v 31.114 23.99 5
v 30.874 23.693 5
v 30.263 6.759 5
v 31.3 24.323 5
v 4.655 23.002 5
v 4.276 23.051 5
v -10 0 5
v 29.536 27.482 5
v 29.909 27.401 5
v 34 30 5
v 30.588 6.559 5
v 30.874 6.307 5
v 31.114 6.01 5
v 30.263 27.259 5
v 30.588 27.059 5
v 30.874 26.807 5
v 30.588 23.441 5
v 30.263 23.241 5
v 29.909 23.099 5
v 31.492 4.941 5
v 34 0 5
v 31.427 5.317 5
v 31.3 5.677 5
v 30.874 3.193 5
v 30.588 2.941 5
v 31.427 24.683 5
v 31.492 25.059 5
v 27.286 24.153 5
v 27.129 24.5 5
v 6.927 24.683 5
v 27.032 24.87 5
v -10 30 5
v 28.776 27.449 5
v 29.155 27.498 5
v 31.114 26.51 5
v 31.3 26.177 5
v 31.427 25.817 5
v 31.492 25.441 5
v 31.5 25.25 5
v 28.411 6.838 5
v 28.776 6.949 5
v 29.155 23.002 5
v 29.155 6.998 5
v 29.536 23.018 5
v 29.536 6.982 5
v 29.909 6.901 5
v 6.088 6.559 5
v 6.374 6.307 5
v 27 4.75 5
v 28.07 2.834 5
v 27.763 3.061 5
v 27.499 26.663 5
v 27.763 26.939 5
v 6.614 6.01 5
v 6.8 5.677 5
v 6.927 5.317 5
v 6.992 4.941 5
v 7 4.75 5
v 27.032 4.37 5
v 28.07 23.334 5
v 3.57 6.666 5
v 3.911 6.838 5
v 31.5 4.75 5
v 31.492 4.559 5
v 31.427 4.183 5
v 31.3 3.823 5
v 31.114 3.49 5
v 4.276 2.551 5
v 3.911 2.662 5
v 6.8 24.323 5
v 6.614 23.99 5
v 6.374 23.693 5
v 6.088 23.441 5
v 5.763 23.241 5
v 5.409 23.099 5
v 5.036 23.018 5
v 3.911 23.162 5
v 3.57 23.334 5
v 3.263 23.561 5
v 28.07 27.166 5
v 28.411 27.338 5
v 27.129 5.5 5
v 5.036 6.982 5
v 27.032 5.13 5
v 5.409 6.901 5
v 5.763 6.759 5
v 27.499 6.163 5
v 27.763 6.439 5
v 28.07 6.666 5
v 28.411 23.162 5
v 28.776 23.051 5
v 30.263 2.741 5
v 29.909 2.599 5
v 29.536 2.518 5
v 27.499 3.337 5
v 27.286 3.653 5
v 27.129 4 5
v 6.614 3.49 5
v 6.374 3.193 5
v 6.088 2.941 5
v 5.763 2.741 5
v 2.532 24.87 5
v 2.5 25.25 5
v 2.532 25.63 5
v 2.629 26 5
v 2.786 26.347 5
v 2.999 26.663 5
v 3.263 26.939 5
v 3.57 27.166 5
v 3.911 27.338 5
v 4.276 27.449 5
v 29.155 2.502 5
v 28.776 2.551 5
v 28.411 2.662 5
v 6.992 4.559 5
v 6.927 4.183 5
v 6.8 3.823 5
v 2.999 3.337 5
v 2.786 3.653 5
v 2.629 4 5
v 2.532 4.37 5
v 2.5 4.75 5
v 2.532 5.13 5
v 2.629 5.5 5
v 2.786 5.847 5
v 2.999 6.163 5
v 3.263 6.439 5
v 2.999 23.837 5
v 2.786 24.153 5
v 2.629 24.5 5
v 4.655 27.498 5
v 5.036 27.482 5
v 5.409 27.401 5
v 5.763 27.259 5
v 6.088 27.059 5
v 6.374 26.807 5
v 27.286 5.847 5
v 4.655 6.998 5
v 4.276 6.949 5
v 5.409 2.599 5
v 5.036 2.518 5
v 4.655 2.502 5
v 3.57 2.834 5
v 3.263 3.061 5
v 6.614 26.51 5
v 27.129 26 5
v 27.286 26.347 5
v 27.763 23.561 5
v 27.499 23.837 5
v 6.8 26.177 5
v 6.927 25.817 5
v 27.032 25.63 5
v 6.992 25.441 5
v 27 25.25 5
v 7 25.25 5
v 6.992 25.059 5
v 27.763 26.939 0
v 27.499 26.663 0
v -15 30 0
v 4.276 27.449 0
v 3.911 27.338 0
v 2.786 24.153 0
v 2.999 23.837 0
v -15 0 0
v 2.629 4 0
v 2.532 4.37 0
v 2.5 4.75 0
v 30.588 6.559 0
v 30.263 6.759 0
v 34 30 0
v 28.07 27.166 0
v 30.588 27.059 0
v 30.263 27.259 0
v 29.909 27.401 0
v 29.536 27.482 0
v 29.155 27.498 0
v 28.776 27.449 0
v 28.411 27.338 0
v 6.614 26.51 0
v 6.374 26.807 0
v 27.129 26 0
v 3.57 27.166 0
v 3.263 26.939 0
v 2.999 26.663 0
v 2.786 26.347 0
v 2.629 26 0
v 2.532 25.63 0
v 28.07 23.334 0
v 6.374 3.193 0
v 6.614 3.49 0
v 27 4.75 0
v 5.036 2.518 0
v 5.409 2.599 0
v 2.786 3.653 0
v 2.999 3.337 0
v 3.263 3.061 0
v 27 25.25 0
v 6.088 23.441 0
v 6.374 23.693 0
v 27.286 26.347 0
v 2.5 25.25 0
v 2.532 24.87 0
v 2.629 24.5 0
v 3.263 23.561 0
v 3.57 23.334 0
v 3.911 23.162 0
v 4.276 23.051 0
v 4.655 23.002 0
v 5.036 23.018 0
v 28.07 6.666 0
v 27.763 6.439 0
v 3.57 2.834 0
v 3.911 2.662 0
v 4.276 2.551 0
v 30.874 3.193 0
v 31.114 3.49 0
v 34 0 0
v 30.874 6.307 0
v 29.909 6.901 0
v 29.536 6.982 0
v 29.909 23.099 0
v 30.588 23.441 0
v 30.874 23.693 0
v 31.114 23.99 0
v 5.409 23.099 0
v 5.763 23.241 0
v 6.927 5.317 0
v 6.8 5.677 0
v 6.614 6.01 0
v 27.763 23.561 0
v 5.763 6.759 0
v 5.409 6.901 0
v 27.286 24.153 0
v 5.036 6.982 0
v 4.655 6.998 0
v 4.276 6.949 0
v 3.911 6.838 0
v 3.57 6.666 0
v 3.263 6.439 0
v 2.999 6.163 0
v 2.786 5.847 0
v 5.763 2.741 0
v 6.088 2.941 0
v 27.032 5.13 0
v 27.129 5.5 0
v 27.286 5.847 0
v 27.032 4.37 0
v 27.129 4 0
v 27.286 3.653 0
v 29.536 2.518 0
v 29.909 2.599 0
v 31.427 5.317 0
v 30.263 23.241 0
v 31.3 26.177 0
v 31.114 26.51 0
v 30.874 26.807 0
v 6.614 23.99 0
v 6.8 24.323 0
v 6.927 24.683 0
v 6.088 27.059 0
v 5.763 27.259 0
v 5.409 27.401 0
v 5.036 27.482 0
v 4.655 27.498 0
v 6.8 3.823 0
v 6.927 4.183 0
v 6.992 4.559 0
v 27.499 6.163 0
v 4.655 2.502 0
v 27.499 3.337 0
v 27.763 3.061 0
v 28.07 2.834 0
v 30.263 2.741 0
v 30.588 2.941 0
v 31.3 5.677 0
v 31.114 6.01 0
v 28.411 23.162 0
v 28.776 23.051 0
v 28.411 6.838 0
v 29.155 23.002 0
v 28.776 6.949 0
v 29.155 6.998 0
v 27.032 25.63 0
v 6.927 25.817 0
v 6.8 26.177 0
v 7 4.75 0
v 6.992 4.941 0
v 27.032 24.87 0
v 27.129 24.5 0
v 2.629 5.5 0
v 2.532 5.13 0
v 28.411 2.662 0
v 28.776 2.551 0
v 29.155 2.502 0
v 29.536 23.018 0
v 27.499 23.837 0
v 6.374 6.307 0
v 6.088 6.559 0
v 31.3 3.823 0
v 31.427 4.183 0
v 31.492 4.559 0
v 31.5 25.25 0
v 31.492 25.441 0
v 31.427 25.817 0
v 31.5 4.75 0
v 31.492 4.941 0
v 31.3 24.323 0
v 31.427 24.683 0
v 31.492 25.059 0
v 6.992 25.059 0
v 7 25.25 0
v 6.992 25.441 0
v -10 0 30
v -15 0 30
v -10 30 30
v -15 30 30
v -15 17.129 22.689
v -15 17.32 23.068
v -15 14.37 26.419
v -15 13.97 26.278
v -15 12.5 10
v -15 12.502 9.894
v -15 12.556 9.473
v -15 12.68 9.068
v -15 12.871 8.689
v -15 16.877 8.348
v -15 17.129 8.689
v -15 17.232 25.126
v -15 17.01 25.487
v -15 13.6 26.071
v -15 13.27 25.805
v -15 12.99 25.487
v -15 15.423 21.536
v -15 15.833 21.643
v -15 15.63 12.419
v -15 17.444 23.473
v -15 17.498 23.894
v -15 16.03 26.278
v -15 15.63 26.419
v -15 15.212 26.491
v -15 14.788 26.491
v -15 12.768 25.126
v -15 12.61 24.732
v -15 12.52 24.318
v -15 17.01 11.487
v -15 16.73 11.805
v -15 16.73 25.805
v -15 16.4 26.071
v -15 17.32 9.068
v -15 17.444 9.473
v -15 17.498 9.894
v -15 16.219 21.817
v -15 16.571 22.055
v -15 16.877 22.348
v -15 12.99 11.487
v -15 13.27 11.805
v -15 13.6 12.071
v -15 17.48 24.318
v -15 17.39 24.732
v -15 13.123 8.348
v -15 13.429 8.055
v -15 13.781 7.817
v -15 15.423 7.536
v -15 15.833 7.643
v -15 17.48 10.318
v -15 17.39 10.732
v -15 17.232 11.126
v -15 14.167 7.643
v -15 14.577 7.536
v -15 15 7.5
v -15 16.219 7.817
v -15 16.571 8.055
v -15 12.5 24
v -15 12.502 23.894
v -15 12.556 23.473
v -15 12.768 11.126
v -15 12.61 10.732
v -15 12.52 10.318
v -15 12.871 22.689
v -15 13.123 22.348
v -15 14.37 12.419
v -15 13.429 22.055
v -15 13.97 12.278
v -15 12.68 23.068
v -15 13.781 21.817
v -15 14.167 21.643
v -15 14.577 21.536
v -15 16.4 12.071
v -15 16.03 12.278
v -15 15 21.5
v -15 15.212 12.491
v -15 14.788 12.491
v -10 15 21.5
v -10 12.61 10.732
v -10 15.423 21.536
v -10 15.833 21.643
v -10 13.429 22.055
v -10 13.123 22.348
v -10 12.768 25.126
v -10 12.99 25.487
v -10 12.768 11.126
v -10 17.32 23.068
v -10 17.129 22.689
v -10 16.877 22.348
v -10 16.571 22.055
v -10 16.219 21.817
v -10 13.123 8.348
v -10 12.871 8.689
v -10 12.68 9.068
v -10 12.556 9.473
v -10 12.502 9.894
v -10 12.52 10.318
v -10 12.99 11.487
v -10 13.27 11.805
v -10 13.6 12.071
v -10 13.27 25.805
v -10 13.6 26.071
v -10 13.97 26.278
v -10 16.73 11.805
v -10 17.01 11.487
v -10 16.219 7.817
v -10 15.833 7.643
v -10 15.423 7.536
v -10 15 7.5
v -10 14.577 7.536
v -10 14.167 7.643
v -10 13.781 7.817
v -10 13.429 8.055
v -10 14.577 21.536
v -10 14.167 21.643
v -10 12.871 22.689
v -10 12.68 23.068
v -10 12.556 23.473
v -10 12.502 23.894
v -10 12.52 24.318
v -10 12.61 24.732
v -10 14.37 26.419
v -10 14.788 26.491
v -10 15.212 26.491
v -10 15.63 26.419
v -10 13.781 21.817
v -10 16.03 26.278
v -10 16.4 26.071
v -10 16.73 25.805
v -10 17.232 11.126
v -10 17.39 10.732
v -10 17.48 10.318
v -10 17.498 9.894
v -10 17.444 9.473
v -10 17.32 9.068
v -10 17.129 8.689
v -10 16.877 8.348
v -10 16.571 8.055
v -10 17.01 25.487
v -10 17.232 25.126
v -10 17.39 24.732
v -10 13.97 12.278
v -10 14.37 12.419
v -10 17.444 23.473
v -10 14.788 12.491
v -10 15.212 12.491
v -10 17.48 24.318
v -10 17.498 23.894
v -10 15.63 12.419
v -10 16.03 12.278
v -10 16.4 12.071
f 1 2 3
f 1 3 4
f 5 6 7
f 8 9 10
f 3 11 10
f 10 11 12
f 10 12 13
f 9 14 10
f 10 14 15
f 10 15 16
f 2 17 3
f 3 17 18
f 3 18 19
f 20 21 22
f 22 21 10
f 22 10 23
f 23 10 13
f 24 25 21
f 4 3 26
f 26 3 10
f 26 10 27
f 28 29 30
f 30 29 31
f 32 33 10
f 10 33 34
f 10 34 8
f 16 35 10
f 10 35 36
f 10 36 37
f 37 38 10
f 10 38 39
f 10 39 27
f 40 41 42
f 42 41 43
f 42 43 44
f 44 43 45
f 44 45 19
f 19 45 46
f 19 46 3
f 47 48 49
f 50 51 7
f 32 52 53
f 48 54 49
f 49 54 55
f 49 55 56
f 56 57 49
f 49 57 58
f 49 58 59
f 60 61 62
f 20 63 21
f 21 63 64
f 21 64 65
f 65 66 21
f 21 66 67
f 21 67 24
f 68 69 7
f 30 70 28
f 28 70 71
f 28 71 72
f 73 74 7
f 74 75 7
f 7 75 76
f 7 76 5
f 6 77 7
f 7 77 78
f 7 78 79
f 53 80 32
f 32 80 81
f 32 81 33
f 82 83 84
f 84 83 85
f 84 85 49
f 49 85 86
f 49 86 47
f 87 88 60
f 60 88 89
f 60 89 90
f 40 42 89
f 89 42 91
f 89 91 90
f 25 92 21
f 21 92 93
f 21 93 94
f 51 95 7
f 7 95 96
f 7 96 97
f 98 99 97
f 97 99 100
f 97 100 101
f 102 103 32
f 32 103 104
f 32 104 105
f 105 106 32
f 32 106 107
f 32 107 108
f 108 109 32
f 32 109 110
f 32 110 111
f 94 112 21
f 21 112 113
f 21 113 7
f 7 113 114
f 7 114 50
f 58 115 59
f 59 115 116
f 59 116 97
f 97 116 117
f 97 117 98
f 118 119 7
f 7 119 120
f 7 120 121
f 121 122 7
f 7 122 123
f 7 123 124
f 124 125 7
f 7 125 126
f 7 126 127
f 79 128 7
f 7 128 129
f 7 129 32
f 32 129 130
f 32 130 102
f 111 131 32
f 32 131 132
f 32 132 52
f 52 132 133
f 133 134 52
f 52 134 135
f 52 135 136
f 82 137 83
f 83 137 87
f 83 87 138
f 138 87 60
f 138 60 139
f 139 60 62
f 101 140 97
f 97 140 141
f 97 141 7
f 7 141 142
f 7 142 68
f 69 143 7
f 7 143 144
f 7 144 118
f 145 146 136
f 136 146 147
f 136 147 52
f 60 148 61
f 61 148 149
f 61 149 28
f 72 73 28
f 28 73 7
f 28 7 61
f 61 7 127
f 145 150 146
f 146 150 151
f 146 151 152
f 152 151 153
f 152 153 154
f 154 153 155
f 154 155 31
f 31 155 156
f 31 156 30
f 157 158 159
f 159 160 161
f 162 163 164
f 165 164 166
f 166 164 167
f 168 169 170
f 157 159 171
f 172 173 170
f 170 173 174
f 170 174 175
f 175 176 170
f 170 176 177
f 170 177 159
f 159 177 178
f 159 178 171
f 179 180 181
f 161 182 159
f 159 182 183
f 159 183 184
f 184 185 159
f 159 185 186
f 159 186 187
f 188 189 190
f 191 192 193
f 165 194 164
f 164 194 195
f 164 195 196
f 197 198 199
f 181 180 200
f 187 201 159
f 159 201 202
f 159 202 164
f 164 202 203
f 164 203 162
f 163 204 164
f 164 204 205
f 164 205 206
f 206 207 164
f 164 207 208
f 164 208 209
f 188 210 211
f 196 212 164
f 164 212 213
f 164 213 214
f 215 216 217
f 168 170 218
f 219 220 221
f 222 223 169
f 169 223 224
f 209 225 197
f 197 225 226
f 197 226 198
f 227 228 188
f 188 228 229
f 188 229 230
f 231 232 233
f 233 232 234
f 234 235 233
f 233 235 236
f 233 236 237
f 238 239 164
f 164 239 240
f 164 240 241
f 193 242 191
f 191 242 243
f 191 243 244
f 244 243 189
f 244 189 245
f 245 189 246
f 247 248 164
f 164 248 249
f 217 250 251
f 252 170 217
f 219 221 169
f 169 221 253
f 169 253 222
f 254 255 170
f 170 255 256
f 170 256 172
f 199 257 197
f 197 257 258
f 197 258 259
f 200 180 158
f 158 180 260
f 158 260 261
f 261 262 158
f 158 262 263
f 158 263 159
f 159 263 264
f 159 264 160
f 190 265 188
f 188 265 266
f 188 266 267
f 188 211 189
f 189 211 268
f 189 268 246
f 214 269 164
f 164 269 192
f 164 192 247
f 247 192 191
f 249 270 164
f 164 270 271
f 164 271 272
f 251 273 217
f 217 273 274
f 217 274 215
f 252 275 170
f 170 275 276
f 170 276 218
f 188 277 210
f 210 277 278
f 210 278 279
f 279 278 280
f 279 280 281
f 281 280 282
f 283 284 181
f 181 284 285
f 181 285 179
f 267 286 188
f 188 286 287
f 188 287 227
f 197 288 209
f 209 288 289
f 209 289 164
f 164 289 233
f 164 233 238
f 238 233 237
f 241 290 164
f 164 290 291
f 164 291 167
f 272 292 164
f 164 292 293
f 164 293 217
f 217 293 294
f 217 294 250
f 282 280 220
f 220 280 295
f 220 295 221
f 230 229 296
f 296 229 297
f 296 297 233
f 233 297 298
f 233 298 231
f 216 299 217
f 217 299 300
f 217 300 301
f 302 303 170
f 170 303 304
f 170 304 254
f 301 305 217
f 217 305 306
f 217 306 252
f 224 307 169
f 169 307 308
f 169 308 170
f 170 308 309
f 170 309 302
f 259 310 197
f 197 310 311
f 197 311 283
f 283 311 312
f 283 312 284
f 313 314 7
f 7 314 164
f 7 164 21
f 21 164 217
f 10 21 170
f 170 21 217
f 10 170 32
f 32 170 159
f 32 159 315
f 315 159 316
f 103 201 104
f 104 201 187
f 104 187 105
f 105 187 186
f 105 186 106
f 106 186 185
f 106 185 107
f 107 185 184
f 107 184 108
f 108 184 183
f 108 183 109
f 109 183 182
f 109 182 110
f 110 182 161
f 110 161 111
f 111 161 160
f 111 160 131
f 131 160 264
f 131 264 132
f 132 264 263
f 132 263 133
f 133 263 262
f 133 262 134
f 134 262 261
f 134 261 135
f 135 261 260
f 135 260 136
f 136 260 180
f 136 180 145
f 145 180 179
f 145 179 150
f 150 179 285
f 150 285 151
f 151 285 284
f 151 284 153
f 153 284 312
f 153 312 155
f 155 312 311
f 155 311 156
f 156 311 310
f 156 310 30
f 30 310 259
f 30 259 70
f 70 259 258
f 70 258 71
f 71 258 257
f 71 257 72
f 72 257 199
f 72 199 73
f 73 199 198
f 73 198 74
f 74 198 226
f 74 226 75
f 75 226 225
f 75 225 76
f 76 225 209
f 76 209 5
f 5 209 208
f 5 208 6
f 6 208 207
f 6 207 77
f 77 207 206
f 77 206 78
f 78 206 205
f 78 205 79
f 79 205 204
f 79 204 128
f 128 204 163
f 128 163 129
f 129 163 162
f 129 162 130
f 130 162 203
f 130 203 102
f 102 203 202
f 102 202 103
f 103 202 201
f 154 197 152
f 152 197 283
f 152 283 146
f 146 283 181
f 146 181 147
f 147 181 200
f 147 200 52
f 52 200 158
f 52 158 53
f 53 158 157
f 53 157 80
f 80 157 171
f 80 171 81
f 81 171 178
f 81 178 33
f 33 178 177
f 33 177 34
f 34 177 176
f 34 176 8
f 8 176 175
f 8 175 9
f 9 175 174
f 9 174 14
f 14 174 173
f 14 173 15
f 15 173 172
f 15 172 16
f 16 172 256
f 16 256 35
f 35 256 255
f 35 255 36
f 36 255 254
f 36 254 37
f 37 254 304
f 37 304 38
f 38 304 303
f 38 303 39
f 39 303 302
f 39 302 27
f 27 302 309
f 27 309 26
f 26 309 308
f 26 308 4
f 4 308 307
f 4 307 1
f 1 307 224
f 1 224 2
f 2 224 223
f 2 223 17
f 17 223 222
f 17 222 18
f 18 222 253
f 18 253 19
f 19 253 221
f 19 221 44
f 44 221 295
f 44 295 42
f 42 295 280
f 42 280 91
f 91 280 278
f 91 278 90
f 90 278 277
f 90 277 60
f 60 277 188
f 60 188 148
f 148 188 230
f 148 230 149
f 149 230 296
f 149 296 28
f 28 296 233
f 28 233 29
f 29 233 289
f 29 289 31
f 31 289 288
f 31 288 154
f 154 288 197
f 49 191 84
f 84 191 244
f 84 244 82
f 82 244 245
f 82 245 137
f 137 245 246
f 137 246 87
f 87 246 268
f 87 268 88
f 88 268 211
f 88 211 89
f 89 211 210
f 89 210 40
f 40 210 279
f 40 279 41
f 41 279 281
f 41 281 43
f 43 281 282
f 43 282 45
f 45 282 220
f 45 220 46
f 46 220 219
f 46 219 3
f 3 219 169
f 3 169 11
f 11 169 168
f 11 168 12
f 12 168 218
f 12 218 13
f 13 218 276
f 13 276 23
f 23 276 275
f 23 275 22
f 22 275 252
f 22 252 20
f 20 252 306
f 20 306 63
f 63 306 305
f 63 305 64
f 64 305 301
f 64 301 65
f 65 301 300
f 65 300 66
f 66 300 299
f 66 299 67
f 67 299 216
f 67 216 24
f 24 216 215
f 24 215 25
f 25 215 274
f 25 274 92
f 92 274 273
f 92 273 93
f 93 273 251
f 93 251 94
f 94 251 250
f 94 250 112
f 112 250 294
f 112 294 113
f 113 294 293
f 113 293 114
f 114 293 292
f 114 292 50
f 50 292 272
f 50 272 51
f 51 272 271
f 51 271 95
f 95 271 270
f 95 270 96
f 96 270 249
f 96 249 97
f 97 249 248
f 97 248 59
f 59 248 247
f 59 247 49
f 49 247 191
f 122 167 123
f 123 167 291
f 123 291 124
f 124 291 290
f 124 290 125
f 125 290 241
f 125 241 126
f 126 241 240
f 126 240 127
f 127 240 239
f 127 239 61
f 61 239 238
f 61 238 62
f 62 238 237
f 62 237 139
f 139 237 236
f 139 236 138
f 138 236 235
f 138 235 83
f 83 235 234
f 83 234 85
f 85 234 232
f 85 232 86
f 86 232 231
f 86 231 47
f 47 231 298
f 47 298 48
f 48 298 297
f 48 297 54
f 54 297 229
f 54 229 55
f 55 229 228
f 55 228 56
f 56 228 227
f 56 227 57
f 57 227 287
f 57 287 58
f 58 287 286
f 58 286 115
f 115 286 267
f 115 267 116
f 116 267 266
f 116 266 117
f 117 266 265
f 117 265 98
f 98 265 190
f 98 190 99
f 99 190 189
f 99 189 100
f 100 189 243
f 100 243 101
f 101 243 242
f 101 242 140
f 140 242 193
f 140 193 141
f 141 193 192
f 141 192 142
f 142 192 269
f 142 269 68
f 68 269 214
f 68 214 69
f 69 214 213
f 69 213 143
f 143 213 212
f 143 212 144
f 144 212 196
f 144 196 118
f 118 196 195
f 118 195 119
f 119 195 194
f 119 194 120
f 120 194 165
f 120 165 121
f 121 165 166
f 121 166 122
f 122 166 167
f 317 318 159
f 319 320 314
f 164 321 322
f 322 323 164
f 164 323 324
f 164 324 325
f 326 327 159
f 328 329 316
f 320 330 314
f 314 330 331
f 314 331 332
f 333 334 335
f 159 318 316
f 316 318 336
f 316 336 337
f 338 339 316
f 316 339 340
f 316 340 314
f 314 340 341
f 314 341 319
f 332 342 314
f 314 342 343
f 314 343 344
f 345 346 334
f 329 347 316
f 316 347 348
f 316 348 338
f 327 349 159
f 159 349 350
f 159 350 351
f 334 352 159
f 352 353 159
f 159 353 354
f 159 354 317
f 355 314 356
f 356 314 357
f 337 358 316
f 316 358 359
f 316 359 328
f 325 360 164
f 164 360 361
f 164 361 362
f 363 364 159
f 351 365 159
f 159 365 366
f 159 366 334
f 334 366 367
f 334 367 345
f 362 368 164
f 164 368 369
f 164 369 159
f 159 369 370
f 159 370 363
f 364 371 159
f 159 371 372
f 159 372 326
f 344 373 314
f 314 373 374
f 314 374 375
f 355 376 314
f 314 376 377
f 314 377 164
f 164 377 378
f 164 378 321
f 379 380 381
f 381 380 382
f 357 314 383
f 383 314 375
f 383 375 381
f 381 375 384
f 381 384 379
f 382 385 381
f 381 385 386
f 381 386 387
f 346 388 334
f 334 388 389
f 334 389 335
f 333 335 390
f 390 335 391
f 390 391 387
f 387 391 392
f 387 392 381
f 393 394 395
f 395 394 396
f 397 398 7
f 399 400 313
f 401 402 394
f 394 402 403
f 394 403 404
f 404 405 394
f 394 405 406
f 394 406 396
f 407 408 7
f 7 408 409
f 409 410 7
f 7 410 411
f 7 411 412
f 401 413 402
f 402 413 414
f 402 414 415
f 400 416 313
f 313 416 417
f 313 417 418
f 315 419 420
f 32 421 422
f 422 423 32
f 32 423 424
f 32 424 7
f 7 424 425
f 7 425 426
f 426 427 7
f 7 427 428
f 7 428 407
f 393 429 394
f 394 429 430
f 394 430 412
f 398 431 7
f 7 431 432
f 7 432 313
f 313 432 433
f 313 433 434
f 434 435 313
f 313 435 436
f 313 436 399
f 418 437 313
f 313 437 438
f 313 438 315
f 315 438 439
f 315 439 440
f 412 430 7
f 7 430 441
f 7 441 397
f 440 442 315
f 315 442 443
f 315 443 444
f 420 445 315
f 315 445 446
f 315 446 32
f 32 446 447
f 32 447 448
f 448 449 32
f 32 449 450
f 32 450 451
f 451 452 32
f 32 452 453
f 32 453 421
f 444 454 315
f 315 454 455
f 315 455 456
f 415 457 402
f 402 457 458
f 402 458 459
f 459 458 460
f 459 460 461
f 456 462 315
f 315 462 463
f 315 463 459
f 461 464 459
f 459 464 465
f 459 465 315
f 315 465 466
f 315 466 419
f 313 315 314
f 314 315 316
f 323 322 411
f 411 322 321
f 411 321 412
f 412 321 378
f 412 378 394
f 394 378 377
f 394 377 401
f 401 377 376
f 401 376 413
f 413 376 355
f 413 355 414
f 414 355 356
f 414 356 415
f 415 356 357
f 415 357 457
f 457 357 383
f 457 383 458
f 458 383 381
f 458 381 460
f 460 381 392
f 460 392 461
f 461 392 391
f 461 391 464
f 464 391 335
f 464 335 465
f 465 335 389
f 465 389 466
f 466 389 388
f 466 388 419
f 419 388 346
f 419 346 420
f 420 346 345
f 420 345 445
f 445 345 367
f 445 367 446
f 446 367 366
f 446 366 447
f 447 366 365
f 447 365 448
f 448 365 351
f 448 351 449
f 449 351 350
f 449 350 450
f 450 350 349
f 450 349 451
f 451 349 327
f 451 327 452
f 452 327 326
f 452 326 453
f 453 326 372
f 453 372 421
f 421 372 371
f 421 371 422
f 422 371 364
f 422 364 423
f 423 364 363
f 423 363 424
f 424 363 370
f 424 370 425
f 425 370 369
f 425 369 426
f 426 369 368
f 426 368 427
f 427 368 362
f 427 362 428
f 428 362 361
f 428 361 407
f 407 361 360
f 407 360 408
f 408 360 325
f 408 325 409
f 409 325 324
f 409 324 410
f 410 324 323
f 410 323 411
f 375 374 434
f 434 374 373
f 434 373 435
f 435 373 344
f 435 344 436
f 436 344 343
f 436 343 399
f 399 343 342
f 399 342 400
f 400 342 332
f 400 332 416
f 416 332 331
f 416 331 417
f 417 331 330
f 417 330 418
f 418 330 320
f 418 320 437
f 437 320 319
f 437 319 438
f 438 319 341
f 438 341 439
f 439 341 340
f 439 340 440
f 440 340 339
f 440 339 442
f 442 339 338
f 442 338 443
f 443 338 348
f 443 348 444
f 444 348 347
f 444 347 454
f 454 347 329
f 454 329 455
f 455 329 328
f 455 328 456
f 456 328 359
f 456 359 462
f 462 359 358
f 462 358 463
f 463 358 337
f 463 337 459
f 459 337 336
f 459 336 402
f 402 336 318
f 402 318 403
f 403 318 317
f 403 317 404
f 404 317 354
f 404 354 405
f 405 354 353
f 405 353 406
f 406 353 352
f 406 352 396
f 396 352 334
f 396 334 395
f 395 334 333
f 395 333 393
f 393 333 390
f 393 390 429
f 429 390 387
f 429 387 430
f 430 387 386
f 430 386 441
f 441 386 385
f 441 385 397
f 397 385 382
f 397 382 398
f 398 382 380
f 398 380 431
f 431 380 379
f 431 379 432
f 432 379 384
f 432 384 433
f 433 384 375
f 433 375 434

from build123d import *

# Parameters (mm, degrees)
SKETCH1_W           = 34
SKETCH1_H           = 30
SKETCH1_R           = 2.25
BOSS_EXTRUDE1_DEPTH = 5
SKETCH2_W           = 5
SKETCH2_H           = 30
BOSS_EXTRUDE2_DEPTH = 15
SKETCH4_W           = 5
SKETCH4_H           = 30
BOSS_EXTRUDE3_DEPTH = 25
SKETCH5_R           = 2.5
CUT_EXTRUDE1_DEPTH  = 25


with BuildPart() as part:
    # Sketch1 → Boss-Extrude1 (new body)
    with BuildSketch(Plane.XY):
        with Locations((17, 15)):
            Rectangle(SKETCH1_W, SKETCH1_H)
        with Locations((4.75, 25.25)):
            Circle(SKETCH1_R, mode=Mode.SUBTRACT)
        with Locations((29.25, 25.25)):
            Circle(SKETCH1_R, mode=Mode.SUBTRACT)
        with Locations((29.25, 4.75)):
            Circle(SKETCH1_R, mode=Mode.SUBTRACT)
        with Locations((4.75, 4.75)):
            Circle(SKETCH1_R, mode=Mode.SUBTRACT)
    extrude(amount=BOSS_EXTRUDE1_DEPTH)

    # Sketch2 → Boss-Extrude2 (add)
    with BuildSketch(Plane.ZY):
        with Locations((2.5, 15)):
            Rectangle(SKETCH2_W, SKETCH2_H)
    extrude(amount=BOSS_EXTRUDE2_DEPTH)

    # Sketch4 → Boss-Extrude3 (add)
    with BuildSketch(Plane.XY.offset(5)):
        with Locations((-12.5, 15)):
            Rectangle(SKETCH4_W, SKETCH4_H)
    extrude(amount=BOSS_EXTRUDE3_DEPTH)

    # Sketch5 → Cut-Extrude1 (cut)
    with BuildSketch(Plane(origin=(-10, 0, 0), x_dir=(0, 0, -1), z_dir=(1, 0, 0))):
        with Locations((-24, 15)):
            Circle(SKETCH5_R)
        with Locations((-10, 15)):
            Circle(SKETCH5_R)
    extrude(amount=-CUT_EXTRUDE1_DEPTH, mode=Mode.SUBTRACT)


solid = part.part
